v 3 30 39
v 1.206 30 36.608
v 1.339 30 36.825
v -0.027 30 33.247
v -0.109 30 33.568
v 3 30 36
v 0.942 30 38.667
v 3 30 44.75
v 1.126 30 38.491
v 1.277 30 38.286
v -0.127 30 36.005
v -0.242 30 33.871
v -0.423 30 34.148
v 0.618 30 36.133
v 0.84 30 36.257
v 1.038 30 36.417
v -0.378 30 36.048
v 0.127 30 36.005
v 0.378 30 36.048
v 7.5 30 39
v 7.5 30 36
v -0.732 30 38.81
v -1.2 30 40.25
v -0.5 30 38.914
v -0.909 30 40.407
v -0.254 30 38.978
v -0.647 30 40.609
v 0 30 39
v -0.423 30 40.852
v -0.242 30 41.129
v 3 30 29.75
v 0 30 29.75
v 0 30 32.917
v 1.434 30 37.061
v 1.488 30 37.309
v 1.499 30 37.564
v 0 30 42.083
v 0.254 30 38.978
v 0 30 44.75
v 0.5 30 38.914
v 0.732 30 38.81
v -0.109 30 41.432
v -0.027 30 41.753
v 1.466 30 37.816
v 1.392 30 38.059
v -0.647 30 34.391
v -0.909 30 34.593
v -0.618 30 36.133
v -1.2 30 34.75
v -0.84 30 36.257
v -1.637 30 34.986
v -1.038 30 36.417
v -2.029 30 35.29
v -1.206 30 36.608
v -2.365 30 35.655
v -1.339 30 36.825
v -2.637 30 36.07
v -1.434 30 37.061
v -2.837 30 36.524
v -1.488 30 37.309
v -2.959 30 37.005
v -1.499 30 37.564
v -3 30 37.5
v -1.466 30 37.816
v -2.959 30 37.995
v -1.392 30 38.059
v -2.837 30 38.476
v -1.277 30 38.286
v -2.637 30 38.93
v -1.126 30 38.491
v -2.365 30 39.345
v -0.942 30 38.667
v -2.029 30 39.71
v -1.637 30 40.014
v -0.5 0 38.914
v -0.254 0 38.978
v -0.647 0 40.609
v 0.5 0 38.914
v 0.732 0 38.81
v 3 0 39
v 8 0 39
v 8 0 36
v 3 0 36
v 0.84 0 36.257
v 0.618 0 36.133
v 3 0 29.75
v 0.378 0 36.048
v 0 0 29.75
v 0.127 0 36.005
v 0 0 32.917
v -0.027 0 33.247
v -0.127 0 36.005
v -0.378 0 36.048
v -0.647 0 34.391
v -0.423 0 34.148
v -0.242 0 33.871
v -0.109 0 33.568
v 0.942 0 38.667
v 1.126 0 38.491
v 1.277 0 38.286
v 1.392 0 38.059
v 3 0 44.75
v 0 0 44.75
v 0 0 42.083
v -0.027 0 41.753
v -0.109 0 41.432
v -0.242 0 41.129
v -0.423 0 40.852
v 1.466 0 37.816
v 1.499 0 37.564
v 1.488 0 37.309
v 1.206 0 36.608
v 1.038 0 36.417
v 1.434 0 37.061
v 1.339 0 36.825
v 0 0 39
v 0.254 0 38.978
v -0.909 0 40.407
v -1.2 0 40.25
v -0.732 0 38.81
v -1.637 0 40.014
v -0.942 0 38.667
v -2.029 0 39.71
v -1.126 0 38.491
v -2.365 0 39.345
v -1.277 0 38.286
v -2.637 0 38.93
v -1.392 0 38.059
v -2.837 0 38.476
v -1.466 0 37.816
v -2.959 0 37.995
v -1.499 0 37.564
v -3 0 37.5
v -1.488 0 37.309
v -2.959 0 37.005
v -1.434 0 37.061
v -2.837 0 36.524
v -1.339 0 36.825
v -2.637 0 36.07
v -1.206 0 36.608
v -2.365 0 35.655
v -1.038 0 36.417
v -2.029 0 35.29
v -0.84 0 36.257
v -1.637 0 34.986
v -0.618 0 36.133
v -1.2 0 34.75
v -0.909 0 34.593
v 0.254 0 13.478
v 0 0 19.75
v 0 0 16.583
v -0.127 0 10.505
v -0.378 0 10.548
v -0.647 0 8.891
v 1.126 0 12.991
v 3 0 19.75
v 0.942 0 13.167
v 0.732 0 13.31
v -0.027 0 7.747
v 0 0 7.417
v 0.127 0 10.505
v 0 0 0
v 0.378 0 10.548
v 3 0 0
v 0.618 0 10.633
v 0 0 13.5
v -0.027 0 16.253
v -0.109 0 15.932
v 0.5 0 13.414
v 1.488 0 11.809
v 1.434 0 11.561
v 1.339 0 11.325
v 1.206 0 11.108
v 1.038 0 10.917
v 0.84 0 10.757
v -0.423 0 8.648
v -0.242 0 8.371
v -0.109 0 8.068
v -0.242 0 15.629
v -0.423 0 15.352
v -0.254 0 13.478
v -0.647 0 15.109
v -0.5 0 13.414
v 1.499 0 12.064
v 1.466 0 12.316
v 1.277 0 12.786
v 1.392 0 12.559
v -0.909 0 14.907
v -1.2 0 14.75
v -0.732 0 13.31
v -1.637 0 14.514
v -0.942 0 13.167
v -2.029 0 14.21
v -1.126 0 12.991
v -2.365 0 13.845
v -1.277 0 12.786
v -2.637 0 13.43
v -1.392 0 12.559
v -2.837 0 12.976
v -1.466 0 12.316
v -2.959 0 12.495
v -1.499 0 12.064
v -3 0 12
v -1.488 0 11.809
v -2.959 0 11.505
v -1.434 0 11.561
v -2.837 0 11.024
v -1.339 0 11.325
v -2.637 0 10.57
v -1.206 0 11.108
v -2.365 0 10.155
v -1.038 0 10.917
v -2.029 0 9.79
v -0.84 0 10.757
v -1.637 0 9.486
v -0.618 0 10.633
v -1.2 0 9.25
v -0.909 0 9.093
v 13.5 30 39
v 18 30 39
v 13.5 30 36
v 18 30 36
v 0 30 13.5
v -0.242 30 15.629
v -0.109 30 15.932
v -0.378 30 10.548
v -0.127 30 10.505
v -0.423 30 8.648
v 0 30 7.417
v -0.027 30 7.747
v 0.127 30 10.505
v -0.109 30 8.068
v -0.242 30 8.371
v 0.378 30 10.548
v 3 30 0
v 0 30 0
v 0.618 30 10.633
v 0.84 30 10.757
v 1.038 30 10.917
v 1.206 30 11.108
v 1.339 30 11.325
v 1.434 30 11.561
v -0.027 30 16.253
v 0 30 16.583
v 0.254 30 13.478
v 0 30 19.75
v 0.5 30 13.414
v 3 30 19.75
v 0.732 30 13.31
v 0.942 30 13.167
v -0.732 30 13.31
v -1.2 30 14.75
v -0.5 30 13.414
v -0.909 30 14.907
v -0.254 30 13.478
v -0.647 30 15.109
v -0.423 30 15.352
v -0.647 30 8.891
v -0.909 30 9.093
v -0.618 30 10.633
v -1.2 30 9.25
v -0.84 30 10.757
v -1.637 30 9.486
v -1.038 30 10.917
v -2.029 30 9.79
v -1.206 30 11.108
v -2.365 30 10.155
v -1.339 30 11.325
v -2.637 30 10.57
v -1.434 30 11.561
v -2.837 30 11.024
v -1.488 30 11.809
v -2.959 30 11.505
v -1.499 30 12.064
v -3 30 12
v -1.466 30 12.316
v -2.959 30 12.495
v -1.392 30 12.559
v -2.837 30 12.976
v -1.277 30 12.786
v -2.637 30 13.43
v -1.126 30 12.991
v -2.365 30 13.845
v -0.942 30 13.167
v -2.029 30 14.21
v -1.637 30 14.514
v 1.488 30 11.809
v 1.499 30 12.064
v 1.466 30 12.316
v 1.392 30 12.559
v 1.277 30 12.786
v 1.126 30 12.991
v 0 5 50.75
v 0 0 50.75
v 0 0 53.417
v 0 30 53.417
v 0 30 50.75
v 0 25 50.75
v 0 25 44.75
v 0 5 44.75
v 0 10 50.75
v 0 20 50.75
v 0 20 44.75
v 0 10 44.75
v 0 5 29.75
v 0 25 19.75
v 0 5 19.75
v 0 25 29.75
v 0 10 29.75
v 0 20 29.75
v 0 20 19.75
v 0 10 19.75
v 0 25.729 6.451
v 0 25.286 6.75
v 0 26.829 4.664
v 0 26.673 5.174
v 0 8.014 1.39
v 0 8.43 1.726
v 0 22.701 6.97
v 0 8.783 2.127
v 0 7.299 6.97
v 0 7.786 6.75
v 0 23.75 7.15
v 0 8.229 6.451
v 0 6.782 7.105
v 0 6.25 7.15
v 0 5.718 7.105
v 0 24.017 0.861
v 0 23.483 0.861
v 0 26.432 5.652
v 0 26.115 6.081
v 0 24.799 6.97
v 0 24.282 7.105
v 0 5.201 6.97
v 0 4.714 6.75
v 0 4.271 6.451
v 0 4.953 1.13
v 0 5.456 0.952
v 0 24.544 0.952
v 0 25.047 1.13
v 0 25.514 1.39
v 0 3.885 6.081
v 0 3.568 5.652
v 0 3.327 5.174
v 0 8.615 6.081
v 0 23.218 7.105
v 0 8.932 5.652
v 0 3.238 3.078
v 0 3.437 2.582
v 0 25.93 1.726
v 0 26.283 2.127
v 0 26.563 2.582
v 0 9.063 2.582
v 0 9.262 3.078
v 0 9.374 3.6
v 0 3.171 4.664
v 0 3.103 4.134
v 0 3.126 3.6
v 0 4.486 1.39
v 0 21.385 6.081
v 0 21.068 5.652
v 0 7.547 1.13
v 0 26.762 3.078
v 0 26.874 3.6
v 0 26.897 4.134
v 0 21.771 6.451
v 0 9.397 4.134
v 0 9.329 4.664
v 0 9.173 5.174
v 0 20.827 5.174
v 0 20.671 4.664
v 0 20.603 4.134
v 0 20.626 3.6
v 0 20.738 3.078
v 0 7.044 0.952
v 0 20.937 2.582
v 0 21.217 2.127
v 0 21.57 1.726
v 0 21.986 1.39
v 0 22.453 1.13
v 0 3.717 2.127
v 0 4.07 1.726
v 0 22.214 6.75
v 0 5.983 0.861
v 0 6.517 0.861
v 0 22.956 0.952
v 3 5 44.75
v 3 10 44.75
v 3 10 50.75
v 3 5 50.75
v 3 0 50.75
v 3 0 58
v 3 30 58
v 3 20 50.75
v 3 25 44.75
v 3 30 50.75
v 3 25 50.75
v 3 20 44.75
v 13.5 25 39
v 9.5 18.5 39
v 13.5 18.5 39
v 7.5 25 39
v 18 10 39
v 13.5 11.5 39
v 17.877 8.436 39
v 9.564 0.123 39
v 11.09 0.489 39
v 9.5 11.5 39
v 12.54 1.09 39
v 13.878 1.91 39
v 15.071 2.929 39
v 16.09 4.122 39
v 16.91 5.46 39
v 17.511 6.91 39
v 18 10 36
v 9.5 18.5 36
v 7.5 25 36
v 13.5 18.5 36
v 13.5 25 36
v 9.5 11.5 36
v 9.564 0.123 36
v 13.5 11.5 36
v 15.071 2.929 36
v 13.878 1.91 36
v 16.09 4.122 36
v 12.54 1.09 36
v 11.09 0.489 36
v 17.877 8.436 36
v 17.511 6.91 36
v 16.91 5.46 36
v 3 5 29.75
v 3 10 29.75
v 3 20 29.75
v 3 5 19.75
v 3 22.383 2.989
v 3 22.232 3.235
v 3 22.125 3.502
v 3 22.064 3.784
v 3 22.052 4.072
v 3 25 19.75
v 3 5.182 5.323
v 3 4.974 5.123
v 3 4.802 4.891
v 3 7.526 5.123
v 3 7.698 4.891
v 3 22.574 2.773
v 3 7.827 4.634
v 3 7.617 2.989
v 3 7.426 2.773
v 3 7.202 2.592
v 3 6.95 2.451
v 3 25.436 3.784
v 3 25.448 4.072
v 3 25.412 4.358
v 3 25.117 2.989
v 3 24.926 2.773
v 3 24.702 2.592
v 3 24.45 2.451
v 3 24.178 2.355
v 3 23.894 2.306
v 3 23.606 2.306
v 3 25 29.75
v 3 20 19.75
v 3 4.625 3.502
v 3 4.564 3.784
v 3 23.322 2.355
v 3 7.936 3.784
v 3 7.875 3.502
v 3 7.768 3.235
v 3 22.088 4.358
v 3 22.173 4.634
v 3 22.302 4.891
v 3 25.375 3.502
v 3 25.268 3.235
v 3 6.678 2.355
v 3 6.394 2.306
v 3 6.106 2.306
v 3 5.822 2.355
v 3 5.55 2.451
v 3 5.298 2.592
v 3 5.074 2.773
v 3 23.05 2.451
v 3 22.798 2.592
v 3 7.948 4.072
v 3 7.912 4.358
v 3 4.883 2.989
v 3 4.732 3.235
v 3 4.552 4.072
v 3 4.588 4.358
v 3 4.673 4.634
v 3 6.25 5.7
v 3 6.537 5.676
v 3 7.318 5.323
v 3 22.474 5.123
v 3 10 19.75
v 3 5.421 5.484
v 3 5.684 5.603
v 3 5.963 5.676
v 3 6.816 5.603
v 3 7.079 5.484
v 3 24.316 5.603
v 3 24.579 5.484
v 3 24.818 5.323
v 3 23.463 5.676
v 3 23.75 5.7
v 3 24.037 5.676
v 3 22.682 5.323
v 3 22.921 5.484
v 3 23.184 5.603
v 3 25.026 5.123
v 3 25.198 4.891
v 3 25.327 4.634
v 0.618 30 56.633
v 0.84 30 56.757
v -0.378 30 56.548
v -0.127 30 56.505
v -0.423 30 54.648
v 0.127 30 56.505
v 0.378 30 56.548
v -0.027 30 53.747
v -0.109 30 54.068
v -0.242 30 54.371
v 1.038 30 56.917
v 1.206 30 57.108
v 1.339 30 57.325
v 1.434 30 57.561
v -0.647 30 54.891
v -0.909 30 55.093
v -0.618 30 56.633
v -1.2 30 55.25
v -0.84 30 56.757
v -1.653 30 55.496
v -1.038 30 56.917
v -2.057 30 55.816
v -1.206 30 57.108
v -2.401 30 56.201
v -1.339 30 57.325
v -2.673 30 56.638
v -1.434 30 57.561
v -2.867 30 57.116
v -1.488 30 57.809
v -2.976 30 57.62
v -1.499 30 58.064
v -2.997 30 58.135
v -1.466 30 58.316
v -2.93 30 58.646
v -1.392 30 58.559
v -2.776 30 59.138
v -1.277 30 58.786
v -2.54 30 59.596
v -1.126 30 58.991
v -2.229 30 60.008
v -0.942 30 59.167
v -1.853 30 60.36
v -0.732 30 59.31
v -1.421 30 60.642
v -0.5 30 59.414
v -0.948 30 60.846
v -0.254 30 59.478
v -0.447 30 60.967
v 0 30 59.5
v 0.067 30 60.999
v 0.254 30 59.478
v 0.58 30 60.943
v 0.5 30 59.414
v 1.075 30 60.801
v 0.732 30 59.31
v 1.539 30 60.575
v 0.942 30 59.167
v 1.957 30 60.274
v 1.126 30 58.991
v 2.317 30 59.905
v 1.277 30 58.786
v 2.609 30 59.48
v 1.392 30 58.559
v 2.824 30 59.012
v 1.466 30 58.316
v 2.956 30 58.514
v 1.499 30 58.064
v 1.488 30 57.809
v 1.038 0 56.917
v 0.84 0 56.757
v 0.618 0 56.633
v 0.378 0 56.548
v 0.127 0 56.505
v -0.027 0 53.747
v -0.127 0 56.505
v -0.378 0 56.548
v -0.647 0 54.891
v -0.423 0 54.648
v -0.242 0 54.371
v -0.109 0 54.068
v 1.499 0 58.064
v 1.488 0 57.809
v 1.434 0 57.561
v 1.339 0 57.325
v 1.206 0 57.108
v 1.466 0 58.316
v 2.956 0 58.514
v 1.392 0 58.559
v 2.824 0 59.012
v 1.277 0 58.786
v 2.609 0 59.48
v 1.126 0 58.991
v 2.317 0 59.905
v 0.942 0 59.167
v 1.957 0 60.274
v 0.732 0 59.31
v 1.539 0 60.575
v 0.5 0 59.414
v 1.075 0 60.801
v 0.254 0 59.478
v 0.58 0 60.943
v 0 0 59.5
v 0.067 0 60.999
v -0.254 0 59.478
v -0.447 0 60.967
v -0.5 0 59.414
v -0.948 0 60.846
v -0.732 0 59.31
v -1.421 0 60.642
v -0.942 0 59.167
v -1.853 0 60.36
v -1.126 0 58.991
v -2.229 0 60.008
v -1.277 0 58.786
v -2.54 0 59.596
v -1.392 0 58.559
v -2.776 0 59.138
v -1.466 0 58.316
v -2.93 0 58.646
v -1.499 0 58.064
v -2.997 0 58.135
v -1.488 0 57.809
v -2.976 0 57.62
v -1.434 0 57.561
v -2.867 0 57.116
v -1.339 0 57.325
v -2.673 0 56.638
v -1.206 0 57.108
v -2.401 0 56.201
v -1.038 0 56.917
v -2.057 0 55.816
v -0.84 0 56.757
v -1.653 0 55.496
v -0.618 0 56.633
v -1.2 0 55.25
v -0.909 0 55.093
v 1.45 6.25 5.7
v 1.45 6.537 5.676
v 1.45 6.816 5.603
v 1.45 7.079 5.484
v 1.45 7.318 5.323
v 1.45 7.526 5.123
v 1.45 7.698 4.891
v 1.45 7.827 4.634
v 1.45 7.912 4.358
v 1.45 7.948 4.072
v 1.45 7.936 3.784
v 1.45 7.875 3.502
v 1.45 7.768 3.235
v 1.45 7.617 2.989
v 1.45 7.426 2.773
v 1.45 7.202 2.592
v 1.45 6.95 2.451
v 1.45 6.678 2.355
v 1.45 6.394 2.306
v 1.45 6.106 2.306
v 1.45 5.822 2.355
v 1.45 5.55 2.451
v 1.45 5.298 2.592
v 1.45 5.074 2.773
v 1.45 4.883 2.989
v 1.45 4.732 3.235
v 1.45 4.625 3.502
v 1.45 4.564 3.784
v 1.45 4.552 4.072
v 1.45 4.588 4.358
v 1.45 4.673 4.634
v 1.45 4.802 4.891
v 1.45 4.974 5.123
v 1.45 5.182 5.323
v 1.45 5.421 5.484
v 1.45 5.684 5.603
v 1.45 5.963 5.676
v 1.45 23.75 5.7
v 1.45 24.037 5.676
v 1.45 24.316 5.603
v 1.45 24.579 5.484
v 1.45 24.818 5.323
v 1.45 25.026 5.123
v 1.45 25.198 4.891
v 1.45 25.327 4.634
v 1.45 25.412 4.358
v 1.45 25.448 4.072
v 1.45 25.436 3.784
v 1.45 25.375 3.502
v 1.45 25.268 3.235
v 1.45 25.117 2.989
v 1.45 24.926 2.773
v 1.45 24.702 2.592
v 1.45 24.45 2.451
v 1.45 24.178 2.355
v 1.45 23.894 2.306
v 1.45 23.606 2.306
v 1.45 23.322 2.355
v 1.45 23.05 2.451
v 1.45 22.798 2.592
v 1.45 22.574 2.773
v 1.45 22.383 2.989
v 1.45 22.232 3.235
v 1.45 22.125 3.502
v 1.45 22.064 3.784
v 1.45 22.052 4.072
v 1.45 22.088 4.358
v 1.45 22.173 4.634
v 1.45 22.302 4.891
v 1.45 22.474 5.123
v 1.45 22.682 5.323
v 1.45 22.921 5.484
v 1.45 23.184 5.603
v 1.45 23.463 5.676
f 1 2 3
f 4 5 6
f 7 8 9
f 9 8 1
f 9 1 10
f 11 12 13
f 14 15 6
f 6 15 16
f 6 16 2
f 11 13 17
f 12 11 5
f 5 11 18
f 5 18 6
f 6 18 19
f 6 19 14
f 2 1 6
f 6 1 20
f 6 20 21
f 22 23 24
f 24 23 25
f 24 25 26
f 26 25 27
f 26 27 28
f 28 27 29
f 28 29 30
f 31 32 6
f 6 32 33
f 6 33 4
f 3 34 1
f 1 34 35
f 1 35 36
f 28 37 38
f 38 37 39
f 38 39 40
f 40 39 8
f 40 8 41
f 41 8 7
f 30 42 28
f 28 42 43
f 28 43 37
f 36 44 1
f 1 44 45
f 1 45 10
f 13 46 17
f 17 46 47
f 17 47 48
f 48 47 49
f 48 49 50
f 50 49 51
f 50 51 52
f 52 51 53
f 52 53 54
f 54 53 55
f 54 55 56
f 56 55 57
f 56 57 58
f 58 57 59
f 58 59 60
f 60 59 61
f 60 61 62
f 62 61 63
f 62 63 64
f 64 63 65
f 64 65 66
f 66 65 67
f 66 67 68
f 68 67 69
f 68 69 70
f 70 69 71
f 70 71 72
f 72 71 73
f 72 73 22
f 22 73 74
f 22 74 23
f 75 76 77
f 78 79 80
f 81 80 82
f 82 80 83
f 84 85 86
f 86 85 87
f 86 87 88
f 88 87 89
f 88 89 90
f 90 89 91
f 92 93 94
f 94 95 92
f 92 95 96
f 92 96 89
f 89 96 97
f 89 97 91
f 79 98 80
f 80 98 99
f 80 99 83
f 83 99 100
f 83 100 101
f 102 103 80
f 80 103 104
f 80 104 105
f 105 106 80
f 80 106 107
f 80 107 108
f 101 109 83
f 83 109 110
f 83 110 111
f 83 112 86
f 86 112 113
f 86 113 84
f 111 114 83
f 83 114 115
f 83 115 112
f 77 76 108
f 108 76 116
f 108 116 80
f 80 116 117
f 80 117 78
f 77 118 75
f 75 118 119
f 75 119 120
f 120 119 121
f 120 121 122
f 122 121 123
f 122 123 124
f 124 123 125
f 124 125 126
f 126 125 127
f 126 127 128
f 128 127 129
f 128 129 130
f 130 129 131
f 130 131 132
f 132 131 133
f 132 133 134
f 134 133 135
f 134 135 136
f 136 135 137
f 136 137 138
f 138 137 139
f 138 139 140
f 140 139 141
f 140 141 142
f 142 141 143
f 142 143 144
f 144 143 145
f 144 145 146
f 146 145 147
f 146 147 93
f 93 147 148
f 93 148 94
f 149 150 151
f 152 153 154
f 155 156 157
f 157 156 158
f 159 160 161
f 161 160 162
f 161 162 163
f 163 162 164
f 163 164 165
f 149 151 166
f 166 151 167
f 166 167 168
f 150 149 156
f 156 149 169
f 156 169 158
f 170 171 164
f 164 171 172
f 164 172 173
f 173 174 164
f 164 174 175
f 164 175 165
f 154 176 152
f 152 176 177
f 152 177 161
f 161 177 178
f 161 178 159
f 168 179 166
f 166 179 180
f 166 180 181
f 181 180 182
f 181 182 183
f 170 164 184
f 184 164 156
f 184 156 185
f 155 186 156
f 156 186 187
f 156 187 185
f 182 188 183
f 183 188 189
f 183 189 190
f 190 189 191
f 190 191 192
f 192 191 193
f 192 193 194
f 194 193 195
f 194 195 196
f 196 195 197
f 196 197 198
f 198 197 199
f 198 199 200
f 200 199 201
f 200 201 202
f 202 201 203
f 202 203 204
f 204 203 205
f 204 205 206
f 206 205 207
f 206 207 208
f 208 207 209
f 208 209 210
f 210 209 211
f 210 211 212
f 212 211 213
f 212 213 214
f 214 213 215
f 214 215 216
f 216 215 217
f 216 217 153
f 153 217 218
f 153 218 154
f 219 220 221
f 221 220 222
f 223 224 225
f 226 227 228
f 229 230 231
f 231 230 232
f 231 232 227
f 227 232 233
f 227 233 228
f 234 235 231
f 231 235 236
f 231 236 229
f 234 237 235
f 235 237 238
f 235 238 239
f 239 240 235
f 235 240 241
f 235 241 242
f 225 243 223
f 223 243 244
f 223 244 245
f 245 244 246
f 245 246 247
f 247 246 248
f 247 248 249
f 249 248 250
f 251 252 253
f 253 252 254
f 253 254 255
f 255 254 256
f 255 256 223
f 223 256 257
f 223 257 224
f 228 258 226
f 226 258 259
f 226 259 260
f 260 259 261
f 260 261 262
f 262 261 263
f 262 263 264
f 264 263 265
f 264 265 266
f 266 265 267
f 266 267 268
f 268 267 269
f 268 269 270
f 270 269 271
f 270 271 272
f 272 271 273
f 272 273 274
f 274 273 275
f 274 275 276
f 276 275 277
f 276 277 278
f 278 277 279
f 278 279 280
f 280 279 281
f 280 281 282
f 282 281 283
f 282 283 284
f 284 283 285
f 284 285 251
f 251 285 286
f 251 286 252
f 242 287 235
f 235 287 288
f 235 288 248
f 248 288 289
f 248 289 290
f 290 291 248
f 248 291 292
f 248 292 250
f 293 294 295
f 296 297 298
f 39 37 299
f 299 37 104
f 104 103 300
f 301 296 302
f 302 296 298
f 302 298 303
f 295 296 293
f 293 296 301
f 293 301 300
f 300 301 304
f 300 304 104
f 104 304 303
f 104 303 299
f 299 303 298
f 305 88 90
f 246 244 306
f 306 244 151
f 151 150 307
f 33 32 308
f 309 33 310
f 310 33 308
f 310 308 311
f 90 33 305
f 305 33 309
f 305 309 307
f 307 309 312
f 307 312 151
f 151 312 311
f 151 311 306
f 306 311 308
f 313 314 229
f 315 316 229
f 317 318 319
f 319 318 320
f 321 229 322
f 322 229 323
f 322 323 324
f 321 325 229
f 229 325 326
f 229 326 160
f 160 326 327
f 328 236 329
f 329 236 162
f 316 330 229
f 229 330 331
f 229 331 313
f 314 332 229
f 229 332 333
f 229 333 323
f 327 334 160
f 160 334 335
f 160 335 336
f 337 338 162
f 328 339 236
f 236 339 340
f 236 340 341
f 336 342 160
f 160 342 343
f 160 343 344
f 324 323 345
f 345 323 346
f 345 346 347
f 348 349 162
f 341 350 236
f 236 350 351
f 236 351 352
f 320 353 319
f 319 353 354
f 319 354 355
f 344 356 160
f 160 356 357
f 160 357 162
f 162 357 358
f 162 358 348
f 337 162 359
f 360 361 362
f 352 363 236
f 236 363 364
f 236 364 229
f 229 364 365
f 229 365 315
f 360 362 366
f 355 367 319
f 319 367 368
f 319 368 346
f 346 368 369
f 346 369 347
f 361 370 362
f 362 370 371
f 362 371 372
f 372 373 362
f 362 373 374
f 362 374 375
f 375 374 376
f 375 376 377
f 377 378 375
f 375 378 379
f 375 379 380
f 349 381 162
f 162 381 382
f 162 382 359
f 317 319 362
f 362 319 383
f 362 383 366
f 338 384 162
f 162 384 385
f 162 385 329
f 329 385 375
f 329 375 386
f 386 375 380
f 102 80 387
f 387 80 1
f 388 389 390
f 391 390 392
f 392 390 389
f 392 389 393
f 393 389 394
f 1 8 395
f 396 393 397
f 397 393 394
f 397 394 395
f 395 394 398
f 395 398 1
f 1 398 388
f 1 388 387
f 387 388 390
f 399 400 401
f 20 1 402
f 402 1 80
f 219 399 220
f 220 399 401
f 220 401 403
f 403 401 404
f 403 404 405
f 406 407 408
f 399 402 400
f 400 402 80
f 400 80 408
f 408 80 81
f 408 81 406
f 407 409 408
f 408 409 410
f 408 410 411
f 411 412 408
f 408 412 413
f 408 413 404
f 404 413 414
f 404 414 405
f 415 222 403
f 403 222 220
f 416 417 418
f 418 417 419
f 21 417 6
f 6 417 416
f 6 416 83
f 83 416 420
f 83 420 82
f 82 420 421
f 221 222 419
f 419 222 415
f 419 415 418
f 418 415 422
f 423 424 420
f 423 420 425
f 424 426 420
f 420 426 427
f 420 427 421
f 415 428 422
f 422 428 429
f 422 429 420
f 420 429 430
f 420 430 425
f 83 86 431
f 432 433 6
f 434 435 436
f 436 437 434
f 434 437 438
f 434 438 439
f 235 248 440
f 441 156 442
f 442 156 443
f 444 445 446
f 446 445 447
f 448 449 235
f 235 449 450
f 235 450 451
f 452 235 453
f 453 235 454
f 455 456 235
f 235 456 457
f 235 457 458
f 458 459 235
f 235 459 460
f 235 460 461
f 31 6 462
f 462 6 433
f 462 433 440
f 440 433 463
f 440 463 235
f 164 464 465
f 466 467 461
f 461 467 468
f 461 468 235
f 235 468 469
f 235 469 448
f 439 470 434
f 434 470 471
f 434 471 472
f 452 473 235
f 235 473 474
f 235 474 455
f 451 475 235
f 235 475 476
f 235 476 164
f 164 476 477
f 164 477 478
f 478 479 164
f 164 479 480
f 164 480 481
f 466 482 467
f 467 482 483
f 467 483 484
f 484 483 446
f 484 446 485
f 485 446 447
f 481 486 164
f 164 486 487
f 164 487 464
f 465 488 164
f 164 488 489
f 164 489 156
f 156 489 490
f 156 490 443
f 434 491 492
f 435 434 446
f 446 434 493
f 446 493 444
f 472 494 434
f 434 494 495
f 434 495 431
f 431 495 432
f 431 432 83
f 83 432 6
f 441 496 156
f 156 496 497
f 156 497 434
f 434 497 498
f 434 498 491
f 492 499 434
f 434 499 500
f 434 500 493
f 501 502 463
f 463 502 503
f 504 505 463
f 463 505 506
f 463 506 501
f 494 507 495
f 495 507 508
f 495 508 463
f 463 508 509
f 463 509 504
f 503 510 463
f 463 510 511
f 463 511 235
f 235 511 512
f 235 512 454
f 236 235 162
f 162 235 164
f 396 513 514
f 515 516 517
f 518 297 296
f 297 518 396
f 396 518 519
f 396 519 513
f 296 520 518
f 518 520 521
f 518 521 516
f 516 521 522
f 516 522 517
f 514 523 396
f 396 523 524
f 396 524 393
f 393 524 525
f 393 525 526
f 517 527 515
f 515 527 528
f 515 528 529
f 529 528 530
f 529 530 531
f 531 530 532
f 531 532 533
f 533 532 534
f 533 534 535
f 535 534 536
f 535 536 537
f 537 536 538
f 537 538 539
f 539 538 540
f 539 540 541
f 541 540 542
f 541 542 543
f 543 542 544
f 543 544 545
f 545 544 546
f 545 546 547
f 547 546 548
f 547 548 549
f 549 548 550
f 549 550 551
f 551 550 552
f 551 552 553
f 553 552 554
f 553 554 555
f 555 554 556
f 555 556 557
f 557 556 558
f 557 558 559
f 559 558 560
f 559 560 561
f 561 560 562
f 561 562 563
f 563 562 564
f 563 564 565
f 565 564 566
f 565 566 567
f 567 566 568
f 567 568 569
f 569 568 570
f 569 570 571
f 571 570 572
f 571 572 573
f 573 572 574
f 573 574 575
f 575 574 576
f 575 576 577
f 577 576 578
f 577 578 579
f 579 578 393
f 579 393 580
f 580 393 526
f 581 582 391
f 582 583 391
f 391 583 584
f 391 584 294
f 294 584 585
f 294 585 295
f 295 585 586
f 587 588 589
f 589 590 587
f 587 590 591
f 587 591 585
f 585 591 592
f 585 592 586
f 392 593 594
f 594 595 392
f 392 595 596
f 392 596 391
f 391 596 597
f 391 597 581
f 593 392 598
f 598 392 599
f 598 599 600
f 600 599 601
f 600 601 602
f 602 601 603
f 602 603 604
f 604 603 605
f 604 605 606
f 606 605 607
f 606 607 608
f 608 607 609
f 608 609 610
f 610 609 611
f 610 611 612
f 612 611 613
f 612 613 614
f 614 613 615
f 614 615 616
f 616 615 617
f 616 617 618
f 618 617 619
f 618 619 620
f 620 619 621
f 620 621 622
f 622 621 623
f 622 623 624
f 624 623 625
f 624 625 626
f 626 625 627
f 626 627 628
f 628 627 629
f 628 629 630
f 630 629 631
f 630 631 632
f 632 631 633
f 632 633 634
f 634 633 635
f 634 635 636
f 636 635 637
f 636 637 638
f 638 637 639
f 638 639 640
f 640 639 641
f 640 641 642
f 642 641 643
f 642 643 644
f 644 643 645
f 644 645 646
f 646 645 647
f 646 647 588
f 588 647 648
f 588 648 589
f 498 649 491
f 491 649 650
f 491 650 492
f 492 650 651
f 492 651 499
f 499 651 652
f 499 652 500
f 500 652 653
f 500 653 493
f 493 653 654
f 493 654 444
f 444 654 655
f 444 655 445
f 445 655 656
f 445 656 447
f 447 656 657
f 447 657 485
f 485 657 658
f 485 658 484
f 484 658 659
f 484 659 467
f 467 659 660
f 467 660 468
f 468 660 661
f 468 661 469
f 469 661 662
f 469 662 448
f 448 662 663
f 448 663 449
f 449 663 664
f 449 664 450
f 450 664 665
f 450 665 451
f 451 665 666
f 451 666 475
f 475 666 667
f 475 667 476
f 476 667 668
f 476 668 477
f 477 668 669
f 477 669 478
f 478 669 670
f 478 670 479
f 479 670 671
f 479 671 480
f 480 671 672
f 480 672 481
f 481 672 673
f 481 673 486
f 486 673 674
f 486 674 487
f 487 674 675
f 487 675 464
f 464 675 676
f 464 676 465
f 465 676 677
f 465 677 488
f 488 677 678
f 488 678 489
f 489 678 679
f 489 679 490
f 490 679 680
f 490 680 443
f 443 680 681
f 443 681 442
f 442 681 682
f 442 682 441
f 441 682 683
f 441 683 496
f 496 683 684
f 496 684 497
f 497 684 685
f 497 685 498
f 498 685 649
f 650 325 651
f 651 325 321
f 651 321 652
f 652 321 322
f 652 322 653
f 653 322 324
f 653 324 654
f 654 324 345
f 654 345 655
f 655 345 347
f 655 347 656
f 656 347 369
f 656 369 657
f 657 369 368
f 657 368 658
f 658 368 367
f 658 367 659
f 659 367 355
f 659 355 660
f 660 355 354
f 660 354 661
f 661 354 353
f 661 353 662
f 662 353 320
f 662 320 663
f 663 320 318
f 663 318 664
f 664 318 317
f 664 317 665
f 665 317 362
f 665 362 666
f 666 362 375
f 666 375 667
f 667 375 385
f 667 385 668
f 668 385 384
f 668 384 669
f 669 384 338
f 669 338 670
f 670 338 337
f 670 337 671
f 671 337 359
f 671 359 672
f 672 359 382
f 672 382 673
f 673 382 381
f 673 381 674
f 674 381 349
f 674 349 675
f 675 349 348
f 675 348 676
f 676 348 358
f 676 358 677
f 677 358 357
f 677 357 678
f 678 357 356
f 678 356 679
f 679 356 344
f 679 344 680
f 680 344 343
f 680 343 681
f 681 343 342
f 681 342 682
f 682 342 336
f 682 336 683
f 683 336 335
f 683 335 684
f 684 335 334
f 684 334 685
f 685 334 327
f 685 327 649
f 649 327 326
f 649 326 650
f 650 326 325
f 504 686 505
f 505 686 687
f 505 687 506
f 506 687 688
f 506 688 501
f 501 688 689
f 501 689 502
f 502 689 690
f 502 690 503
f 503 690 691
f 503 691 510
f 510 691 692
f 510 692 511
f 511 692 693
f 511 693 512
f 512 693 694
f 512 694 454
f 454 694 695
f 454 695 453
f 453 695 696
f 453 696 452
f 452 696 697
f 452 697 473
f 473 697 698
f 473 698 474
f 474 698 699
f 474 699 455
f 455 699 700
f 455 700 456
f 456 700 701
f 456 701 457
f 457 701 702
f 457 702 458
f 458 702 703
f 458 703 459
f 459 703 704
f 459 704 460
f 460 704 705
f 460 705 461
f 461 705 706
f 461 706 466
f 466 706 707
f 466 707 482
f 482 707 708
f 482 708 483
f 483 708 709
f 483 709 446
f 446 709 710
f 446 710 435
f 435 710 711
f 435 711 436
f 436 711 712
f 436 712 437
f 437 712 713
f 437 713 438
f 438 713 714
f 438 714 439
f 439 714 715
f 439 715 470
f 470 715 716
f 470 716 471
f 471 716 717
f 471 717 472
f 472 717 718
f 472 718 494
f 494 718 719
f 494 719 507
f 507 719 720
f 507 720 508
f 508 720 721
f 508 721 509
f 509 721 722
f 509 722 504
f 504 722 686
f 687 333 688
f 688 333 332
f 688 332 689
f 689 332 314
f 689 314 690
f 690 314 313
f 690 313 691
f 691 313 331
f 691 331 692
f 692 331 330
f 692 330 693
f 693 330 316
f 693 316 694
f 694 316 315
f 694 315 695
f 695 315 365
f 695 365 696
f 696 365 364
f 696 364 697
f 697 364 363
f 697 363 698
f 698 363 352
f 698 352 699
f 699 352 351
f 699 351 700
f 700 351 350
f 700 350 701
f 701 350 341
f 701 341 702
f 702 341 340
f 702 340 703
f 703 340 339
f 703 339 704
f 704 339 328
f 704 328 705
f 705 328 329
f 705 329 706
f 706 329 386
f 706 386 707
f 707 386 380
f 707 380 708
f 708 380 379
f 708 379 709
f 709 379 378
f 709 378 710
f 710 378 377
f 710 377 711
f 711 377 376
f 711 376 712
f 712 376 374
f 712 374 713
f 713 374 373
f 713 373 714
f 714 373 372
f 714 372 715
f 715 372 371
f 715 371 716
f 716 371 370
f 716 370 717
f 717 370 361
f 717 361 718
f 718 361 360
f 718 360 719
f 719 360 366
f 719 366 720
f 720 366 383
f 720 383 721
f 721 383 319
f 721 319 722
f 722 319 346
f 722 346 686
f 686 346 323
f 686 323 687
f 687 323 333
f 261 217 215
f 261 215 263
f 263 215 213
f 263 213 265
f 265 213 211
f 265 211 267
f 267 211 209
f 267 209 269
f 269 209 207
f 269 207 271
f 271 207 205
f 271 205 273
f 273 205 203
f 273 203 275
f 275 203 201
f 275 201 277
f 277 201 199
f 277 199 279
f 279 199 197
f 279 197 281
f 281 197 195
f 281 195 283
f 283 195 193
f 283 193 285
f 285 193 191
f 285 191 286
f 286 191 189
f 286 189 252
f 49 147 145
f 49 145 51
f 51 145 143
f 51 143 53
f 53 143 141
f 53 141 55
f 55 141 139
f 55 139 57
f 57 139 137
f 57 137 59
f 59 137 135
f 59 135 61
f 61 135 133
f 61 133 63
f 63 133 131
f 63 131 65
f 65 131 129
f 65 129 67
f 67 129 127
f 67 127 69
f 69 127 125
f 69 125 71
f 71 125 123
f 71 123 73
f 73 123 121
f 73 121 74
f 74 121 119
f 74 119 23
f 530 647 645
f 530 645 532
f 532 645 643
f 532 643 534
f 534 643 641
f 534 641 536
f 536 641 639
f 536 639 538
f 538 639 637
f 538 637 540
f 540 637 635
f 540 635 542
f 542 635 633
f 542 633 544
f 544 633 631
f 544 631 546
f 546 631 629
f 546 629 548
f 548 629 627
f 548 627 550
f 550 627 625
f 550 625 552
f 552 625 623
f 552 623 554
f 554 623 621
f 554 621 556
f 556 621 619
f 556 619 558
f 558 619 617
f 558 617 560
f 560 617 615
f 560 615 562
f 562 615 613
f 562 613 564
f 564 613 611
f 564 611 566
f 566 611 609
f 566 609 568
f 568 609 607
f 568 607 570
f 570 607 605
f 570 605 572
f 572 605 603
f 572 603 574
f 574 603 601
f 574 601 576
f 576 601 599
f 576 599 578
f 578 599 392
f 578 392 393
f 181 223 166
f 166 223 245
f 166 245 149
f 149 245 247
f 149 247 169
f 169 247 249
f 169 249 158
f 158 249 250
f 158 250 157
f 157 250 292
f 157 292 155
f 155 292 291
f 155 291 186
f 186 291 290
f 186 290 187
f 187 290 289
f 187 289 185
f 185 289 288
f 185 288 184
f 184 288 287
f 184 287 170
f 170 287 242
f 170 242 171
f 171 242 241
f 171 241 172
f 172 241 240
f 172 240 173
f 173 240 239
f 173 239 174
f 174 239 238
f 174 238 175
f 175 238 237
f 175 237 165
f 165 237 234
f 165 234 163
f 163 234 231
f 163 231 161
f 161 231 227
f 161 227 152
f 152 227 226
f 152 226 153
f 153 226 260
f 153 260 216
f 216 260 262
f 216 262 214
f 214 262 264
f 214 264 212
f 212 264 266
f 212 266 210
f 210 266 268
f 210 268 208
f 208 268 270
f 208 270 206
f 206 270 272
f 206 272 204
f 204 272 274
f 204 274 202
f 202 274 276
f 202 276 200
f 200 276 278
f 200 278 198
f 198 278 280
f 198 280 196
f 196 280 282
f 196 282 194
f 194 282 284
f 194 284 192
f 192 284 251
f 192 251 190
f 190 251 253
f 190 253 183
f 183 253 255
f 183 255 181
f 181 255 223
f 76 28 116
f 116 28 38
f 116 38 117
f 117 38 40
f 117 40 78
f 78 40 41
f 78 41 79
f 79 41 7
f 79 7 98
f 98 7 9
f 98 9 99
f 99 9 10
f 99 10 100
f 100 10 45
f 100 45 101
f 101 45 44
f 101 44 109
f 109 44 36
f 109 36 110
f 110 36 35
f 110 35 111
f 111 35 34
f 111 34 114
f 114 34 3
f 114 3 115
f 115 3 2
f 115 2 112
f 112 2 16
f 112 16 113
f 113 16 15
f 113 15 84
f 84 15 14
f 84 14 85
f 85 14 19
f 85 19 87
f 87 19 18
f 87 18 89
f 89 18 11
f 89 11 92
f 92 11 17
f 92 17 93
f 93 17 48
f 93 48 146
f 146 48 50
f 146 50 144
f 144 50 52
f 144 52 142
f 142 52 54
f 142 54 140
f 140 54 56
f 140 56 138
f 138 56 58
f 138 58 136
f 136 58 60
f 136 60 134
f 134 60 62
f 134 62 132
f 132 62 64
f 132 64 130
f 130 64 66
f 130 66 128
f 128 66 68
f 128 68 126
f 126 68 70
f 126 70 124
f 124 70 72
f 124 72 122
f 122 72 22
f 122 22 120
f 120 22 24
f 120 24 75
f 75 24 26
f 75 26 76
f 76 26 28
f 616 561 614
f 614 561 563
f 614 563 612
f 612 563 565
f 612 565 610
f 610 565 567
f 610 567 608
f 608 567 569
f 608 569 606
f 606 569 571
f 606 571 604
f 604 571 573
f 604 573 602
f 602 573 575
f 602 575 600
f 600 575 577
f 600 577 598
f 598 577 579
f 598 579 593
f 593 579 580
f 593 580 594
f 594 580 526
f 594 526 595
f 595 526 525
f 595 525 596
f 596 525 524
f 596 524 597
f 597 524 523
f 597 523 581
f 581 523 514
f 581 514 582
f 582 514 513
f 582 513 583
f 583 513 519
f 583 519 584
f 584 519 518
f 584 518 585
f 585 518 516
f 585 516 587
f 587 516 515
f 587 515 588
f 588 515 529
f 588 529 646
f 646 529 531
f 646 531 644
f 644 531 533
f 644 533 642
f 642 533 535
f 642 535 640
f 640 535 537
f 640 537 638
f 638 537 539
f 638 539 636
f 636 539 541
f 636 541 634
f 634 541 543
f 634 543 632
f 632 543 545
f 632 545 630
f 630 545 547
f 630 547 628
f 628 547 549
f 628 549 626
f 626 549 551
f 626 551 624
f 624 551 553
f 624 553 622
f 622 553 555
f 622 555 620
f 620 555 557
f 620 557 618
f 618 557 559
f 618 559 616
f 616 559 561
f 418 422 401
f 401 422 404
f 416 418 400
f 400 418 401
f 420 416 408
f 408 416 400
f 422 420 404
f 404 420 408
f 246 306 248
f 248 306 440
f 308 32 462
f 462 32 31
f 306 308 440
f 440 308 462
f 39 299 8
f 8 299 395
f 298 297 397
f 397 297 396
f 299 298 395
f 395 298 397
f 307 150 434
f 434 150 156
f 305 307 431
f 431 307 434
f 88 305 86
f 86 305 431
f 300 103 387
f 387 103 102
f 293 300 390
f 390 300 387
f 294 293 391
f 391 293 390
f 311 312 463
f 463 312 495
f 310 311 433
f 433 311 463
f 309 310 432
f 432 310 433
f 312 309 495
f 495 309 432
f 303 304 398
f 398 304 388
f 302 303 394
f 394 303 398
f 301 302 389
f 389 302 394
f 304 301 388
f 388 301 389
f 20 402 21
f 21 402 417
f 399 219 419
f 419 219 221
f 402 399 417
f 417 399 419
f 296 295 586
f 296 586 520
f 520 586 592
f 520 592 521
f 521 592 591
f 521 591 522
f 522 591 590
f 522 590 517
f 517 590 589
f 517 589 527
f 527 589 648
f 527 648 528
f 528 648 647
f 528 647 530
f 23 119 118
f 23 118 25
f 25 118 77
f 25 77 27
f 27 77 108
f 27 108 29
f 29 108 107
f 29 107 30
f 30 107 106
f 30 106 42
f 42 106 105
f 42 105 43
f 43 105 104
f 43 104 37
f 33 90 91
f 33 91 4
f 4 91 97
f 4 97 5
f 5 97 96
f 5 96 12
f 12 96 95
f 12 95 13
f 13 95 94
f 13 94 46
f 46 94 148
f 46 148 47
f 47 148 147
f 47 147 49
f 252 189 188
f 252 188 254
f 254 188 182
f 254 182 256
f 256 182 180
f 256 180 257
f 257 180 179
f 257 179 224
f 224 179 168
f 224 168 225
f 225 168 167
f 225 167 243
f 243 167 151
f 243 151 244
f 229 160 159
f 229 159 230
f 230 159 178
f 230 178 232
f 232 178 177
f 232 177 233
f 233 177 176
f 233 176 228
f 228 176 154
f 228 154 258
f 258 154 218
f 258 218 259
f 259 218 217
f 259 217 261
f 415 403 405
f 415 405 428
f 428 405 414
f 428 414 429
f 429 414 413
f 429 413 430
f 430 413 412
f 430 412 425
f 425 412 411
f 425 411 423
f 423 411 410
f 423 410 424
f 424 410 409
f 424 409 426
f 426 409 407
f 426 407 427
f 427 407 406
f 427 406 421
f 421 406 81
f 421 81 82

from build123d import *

# Parameters (mm, degrees)
BOSS_EXTRUDE1_DEPTH                                 = 30
CSK_FOR_M3_COUNTERSUNK_FLAT_HEAD_SCREW1_D           = 3.4
CSK_FOR_M3_COUNTERSUNK_FLAT_HEAD_SCREW1_CSINK_D     = 6.3
CSK_FOR_M3_COUNTERSUNK_FLAT_HEAD_SCREW1_CSINK_ANGLE = 90
SKETCH4_R                                           = 3
BOSS_EXTRUDE2_DEPTH                                 = 30
SKETCH5_R                                           = 1.5
CUT_EXTRUDE1_DEPTH                                  = 71.320693967
CUT_EXTRUDE2_REACH                                  = 52.2
SKETCH7_W                                           = 4
SKETCH7_H                                           = 7
CUT_EXTRUDE3_REACH                                  = 72.321
SKETCH10_W                                          = 10
SKETCH10_H                                          = 5
SKETCH10_W_2                                        = 6
SKETCH10_H_2                                        = 10
CUT_EXTRUDE4_REACH                                  = 54.393
SKETCH11_W                                          = 6
SKETCH11_H                                          = 5
FILLET1_R                                           = 2
FILLET2_R                                           = 10


with BuildPart() as part:
    # Sketch1 → Boss-Extrude1 (new body)
    with BuildSketch(Plane(origin=(0, 0, 0), x_dir=(1, 0, 0), z_dir=(0, 1, 0))):
        Polygon((0, -58), (0, 0), (3, 0), (3, -36), (18, -36), (18, -39), (3, -39), (3, -58), align=None)
    extrude(amount=BOSS_EXTRUDE1_DEPTH)

    # CSK for M3 Countersunk Flat Head Screw1 (through all)
    with Locations(Plane.ZY):
        with Locations((4, 23.75), (4, 6.25)):
            CounterSinkHole(CSK_FOR_M3_COUNTERSUNK_FLAT_HEAD_SCREW1_D / 2, CSK_FOR_M3_COUNTERSUNK_FLAT_HEAD_SCREW1_CSINK_D / 2, counter_sink_angle=CSK_FOR_M3_COUNTERSUNK_FLAT_HEAD_SCREW1_CSINK_ANGLE)

    # Sketch4 → Boss-Extrude2 (add)
    with BuildSketch(Plane(origin=(0, 0, 0), x_dir=(1, 0, 0), z_dir=(0, 1, 0))):
        with Locations((0, -12)):
            Circle(SKETCH4_R)
        with Locations((0, -37.5)):
            Circle(SKETCH4_R)
        with Locations((0, -58)):
            Circle(SKETCH4_R)
    extrude(amount=BOSS_EXTRUDE2_DEPTH)

    # Sketch5 → Cut-Extrude1 (cut, through all)
    with BuildSketch(Plane(origin=(0, 30, 0), x_dir=(1, 0, 0), z_dir=(0, 1, 0))):
        with Locations(Location((0, -12, 0), (0, 0, 270))):
            Circle(SKETCH5_R)
        with Locations(Location((0, -37.5, 0), (0, 0, 270))):
            Circle(SKETCH5_R)
        with Locations(Location((0, -58, 0), (0, 0, 270))):
            Circle(SKETCH5_R)
    extrude(amount=-CUT_EXTRUDE1_DEPTH, mode=Mode.SUBTRACT)

    # Sketch7 → Cut-Extrude2 (cut, up to next)
    with BuildSketch(Plane(origin=(0, 0, 36), x_dir=(-1, 0, 0), z_dir=(0, 0, -1)), mode=Mode.PRIVATE) as cut_extrude2_sk1:
        with Locations((-11.5, 15)):
            Rectangle(SKETCH7_W, SKETCH7_H)
    cut_extrude2_tool1 = extrude(cut_extrude2_sk1.sketch, amount=-CUT_EXTRUDE2_REACH, mode=Mode.PRIVATE) & part.part
    add(cut_extrude2_tool1.solids().sort_by_distance((11.5, 15, 36))[0], mode=Mode.SUBTRACT)

    # Sketch10 → Cut-Extrude3 (cut, up to next)
    with BuildSketch(Plane.ZY, mode=Mode.PRIVATE) as cut_extrude3_sk1:
        with Locations((24.75, 27.5)):
            Rectangle(SKETCH10_W, SKETCH10_H)
    cut_extrude3_tool1 = extrude(cut_extrude3_sk1.sketch, amount=-CUT_EXTRUDE3_REACH, mode=Mode.PRIVATE) & part.part
    # Sketch10 → Cut-Extrude3 (cut, up to next)
    with BuildSketch(Plane.ZY, mode=Mode.PRIVATE) as cut_extrude3_sk2:
        with Locations((47.75, 27.5)):
            Rectangle(SKETCH10_W_2, SKETCH10_H)
    cut_extrude3_tool2 = extrude(cut_extrude3_sk2.sketch, amount=-CUT_EXTRUDE3_REACH, mode=Mode.PRIVATE) & part.part
    # Sketch10 → Cut-Extrude3 (cut, up to next)
    with BuildSketch(Plane.ZY, mode=Mode.PRIVATE) as cut_extrude3_sk3:
        with Locations((24.75, 2.5)):
            Rectangle(SKETCH10_W, SKETCH10_H)
    cut_extrude3_tool3 = extrude(cut_extrude3_sk3.sketch, amount=-CUT_EXTRUDE3_REACH, mode=Mode.PRIVATE) & part.part
    # Sketch10 → Cut-Extrude3 (cut, up to next)
    with BuildSketch(Plane.ZY, mode=Mode.PRIVATE) as cut_extrude3_sk4:
        with Locations((47.75, 2.5)):
            Rectangle(SKETCH10_W_2, SKETCH10_H)
    cut_extrude3_tool4 = extrude(cut_extrude3_sk4.sketch, amount=-CUT_EXTRUDE3_REACH, mode=Mode.PRIVATE) & part.part
    # Sketch10 → Cut-Extrude3 (cut, up to next)
    with BuildSketch(Plane.ZY, mode=Mode.PRIVATE) as cut_extrude3_sk5:
        with Locations((24.75, 15)):
            Rectangle(SKETCH10_W, SKETCH10_H_2)
    cut_extrude3_tool5 = extrude(cut_extrude3_sk5.sketch, amount=-CUT_EXTRUDE3_REACH, mode=Mode.PRIVATE) & part.part
    # Sketch10 → Cut-Extrude3 (cut, up to next)
    with BuildSketch(Plane.ZY, mode=Mode.PRIVATE) as cut_extrude3_sk6:
        with Locations((47.75, 15)):
            Rectangle(SKETCH10_W_2, SKETCH10_H_2)
    cut_extrude3_tool6 = extrude(cut_extrude3_sk6.sketch, amount=-CUT_EXTRUDE3_REACH, mode=Mode.PRIVATE) & part.part
    add(cut_extrude3_tool1.solids().sort_by_distance((0, 27.5, 24.75))[0], mode=Mode.SUBTRACT)
    add(cut_extrude3_tool2.solids().sort_by_distance((0, 27.5, 47.75))[0], mode=Mode.SUBTRACT)
    add(cut_extrude3_tool3.solids().sort_by_distance((0, 2.5, 24.75))[0], mode=Mode.SUBTRACT)
    add(cut_extrude3_tool4.solids().sort_by_distance((0, 2.5, 47.75))[0], mode=Mode.SUBTRACT)
    add(cut_extrude3_tool5.solids().sort_by_distance((0, 15, 24.75))[0], mode=Mode.SUBTRACT)
    add(cut_extrude3_tool6.solids().sort_by_distance((0, 15, 47.75))[0], mode=Mode.SUBTRACT)

    # Sketch11 → Cut-Extrude4 (cut, up to next)
    with BuildSketch(Plane.XY.offset(39), mode=Mode.PRIVATE) as cut_extrude4_sk1:
        with Locations((10.5, 27.5)):
            Rectangle(SKETCH11_W, SKETCH11_H)
    cut_extrude4_tool1 = extrude(cut_extrude4_sk1.sketch, amount=-CUT_EXTRUDE4_REACH, mode=Mode.PRIVATE) & part.part
    add(cut_extrude4_tool1.solids().sort_by_distance((10.5, 27.5, 39))[0], mode=Mode.SUBTRACT)

    # Fillet1
    fillet1_edges = [part.edges().sort_by_distance(p)[0] for p in [
        (0, 15, 15),
        (0, 15, 9),
        (0, 15, 40.5),
        (0, 15, 34.5),
        (0, 15, 55),
    ]]
    fillet(fillet1_edges, radius=FILLET1_R)

    # Fillet2
    fillet2_edges = [part.edges().sort_by_distance(p)[0] for p in [
        (18, 0, 37.5),
    ]]
    fillet(fillet2_edges, radius=FILLET2_R)


solid = part.part
